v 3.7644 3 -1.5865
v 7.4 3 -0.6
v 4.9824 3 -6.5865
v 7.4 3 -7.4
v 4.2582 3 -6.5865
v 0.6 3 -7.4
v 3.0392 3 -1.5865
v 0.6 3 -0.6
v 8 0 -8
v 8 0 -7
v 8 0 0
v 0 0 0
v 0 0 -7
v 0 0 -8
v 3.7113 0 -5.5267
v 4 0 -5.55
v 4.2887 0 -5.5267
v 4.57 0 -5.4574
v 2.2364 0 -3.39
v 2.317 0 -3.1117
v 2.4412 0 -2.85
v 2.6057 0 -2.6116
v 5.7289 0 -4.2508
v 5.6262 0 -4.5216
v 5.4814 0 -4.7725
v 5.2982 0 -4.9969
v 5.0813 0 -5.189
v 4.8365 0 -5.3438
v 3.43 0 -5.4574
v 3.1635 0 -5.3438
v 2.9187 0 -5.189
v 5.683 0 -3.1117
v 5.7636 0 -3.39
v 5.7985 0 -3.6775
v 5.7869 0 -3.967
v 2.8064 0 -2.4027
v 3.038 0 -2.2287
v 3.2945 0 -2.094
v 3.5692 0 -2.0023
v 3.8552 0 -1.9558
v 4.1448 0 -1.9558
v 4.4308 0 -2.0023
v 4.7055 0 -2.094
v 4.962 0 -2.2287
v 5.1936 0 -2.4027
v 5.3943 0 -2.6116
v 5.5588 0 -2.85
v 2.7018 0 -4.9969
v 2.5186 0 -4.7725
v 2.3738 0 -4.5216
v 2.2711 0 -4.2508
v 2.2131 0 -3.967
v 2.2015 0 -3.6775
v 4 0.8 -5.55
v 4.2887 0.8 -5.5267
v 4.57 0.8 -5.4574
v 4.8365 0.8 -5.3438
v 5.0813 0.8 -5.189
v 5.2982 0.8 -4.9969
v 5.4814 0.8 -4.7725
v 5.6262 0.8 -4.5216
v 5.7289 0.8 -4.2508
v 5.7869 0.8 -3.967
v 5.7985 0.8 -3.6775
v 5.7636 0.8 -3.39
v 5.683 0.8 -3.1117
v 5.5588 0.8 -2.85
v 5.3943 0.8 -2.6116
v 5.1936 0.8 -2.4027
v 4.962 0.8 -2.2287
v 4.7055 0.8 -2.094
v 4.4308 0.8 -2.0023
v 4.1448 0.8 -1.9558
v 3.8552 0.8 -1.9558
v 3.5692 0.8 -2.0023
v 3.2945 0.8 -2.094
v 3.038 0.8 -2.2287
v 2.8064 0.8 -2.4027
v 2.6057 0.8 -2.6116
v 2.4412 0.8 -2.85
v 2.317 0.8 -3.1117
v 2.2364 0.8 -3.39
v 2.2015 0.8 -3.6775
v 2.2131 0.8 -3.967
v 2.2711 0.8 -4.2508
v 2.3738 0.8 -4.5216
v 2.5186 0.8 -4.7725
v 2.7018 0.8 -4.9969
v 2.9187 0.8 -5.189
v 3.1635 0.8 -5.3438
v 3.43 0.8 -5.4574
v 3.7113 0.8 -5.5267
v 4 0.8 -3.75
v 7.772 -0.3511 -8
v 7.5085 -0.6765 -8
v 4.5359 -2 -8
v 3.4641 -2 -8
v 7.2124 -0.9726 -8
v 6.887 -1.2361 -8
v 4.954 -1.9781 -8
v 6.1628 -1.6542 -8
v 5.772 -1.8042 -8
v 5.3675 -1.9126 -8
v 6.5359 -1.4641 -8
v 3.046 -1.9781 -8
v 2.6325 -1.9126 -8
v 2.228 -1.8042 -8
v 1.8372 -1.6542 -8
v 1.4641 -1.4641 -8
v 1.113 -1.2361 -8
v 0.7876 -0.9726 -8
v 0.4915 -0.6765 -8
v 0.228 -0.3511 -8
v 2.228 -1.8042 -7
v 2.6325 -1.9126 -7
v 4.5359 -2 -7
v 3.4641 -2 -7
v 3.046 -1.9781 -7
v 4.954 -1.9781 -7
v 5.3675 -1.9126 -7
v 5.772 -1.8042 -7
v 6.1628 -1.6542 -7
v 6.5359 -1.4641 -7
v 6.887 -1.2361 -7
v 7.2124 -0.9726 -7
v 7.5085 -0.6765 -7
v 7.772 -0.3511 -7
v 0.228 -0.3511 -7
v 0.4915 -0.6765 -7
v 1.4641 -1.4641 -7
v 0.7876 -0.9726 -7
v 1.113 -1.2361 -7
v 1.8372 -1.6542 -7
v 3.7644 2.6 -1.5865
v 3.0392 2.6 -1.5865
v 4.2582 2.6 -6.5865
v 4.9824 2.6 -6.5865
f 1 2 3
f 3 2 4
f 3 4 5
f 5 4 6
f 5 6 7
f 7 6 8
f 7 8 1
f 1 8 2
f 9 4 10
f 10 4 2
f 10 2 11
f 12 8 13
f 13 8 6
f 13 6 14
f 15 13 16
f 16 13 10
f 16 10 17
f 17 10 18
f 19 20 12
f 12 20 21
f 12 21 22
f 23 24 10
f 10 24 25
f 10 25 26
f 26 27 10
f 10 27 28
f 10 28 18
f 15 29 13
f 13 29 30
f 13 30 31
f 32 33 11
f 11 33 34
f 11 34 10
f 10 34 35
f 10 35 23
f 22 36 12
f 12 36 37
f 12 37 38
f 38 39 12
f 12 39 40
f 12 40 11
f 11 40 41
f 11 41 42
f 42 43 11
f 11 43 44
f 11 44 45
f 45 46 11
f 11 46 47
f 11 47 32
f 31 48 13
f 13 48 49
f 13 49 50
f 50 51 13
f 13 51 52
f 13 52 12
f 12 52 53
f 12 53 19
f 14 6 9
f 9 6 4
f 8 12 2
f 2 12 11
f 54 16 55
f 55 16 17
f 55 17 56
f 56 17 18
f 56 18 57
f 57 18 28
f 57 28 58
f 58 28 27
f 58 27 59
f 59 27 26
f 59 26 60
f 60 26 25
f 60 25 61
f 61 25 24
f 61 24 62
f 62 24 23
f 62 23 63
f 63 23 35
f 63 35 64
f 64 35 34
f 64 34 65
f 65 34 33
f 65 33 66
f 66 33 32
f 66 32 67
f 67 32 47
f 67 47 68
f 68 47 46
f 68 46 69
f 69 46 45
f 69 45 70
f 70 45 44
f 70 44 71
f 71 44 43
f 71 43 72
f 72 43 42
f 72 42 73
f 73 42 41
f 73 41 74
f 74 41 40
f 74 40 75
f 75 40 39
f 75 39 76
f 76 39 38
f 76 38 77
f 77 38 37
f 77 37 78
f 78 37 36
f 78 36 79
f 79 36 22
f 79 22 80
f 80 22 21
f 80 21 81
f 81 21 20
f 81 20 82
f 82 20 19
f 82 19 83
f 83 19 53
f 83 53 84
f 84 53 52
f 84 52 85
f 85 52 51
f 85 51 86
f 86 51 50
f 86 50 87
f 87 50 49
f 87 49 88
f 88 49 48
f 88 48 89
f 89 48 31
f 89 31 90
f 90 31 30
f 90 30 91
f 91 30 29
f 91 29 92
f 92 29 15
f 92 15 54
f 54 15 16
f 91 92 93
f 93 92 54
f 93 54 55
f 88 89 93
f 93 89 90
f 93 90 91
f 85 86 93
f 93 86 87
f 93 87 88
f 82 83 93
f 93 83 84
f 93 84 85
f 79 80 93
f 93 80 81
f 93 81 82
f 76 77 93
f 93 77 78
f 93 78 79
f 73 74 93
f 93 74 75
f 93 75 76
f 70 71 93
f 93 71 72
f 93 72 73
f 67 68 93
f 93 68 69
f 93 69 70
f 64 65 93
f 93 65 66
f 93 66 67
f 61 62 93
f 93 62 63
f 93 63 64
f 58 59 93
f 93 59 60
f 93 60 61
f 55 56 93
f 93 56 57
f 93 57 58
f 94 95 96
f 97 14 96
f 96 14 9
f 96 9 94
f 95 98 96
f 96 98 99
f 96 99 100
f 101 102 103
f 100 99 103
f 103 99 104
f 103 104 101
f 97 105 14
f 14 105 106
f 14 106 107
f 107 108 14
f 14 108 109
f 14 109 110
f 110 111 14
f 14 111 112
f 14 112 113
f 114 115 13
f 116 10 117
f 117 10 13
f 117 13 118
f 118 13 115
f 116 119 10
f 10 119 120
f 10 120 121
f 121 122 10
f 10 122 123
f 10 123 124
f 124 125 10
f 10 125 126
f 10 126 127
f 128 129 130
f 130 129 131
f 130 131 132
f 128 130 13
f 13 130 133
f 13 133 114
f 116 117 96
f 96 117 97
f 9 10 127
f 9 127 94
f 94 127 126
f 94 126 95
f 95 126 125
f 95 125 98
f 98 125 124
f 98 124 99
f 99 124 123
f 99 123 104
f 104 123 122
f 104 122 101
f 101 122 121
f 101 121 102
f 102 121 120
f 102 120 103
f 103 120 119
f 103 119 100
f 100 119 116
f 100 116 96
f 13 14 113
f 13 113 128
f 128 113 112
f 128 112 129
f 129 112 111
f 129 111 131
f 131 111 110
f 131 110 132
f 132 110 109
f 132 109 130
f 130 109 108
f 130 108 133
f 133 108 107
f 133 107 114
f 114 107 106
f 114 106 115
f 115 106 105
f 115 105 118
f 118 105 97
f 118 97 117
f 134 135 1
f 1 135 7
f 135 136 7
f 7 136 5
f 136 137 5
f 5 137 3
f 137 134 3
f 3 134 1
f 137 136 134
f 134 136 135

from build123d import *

# Parameters (mm, degrees)
SKETCH1_W               = 8
SKETCH1_H               = 8
BOSS_EXTRUDE1_DEPTH     = 3
CUT_EXTRUDE1_DEPTH      = 12.704699911
CUT_EXTRUDE1_DEPTH_BACK = 12.704699911
CUT_EXTRUDE2_DEPTH      = 11
SKETCH4_R               = 1.8
CUT_EXTRUDE3_DEPTH      = 0.8
SKETCH5_W               = 8
SKETCH5_H               = 1
BOSS_EXTRUDE2_DEPTH     = 2
FILLET1_R               = 4
CUT_EXTRUDE4_DEPTH      = 0.4


with BuildPart() as part:
    # Sketch1 → Boss-Extrude1 (new body)
    with BuildSketch(Plane(origin=(0, 0, 0), x_dir=(1, 0, 0), z_dir=(0, 1, 0))):
        with Locations((4, 4)):
            Rectangle(SKETCH1_W, SKETCH1_H)
    extrude(amount=BOSS_EXTRUDE1_DEPTH)

    # Sketch2 → Cut-Extrude1 (cut, two sides: drawn at the far end of the back side and taken through both)
    with BuildSketch(Plane.XY.offset(-CUT_EXTRUDE1_DEPTH_BACK)):
        Polygon((0, 0), (0.6, 3), (0, 3), align=None)
        Polygon((8, 0), (7.4, 3), (8, 3), align=None)
    extrude(amount=CUT_EXTRUDE1_DEPTH + CUT_EXTRUDE1_DEPTH_BACK, mode=Mode.SUBTRACT)

    # Sketch3 → Cut-Extrude2 (cut)
    with BuildSketch(Plane(origin=(0, 0, 0), x_dir=(0, 0, -1), z_dir=(1, 0, 0))):
        Polygon((0, 0), (0.6, 3), (0, 3), align=None)
        Polygon((8, 3), (7.4, 3), (8, 0), align=None)
    extrude(amount=CUT_EXTRUDE2_DEPTH, mode=Mode.SUBTRACT)

    # Sketch4 → Cut-Extrude3 (cut)
    with BuildSketch(Plane.XZ):
        with Locations(Location((4, -3.75, 0), (0, 0, 270))):
            Circle(SKETCH4_R)
    extrude(amount=-CUT_EXTRUDE3_DEPTH, mode=Mode.SUBTRACT)

    # Sketch5 → Boss-Extrude2 (add)
    with BuildSketch(Plane.XZ):
        with Locations((4, -7.5)):
            Rectangle(SKETCH5_W, SKETCH5_H)
    extrude(amount=BOSS_EXTRUDE2_DEPTH)

    # Fillet1
    # the kernel refuses this fillet: 4 mm, written as the material it takes off along each edge
    with BuildSketch(Plane(origin=(8, -2, -16.660254038), x_dir=(0, 1, 0), z_dir=(0, 0, 1)), Plane(origin=(0, -2, 1.660254038), x_dir=(0, 1, 0), z_dir=(0, 0, -1))) as fillet1_piece_1:
        with BuildLine():
            CenterArc((4, 3.464101615), FILLET1_R, 180, 60)
            Line((0, 3.464101615), (-0.08, 3.464101615))
            Line((-0.08, 3.464101615), (-0.08, 0))
            Line((-0.08, 0), (0, -0.08))
            ThreePointArc((0, -0.08), (1, -0.08), (1.96, -0.069282032))
            Line((1.96, -0.069282032), (2, 0))
        make_face()
    extrude(amount=18.320508076, mode=Mode.SUBTRACT)

    # Sketch6 → Cut-Extrude4 (cut)
    with BuildSketch(Plane(origin=(0, 3, 0), x_dir=(1, 0, 0), z_dir=(0, 1, 0))):
        Polygon((3.039241423, 1.586469201), (4.258191744, 6.586469201), (4.982350398, 6.586469201), (3.76440168, 1.586469201), align=None)
    extrude(amount=-CUT_EXTRUDE4_DEPTH, mode=Mode.SUBTRACT)


solid = part.part
